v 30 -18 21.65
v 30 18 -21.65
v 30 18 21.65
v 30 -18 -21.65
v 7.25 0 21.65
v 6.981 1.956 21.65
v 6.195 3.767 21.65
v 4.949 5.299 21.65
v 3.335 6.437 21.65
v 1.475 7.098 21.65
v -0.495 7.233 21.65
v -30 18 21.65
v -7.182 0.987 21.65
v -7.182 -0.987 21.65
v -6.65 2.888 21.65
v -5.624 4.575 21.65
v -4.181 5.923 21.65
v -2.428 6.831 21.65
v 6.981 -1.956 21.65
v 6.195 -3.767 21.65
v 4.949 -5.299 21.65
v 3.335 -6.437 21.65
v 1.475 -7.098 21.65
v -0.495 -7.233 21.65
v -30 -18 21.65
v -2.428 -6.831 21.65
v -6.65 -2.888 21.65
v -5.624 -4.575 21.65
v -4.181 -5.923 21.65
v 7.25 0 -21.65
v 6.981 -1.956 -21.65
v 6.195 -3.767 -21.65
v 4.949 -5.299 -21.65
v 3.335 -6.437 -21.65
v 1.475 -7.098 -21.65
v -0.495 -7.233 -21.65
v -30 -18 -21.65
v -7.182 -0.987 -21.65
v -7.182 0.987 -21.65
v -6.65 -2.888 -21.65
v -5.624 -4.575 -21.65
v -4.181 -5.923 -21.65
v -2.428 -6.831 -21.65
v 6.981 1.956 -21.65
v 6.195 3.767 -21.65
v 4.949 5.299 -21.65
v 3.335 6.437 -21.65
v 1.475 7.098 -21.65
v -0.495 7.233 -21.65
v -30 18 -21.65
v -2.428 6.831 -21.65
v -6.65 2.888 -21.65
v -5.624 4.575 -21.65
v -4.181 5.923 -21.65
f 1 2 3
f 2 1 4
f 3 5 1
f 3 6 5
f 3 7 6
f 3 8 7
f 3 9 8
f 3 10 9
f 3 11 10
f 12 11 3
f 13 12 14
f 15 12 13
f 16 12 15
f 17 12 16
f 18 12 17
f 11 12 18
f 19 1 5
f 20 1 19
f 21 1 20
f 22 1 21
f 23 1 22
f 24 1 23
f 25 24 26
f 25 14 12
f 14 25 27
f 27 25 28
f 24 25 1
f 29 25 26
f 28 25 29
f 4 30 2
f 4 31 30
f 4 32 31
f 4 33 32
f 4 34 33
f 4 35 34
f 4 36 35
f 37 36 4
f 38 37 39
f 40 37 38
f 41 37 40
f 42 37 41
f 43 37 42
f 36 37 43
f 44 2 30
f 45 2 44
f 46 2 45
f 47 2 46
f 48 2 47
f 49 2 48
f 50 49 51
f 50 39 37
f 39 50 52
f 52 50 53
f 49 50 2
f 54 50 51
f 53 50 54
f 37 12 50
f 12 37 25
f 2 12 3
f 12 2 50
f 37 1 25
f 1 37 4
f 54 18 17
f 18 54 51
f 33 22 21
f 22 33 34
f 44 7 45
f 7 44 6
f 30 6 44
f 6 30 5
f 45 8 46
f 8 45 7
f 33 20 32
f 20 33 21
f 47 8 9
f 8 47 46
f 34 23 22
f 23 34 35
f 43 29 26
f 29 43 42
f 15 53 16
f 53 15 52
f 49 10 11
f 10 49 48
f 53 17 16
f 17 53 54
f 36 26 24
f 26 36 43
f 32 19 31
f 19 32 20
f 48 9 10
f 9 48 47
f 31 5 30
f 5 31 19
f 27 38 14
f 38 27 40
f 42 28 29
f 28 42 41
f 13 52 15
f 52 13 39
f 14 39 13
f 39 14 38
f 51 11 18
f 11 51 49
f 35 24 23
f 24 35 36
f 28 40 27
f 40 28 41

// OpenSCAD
difference(){
cube([60,36,43.3],center=true);

cylinder(d=14.5,h=50,center=true);
}
